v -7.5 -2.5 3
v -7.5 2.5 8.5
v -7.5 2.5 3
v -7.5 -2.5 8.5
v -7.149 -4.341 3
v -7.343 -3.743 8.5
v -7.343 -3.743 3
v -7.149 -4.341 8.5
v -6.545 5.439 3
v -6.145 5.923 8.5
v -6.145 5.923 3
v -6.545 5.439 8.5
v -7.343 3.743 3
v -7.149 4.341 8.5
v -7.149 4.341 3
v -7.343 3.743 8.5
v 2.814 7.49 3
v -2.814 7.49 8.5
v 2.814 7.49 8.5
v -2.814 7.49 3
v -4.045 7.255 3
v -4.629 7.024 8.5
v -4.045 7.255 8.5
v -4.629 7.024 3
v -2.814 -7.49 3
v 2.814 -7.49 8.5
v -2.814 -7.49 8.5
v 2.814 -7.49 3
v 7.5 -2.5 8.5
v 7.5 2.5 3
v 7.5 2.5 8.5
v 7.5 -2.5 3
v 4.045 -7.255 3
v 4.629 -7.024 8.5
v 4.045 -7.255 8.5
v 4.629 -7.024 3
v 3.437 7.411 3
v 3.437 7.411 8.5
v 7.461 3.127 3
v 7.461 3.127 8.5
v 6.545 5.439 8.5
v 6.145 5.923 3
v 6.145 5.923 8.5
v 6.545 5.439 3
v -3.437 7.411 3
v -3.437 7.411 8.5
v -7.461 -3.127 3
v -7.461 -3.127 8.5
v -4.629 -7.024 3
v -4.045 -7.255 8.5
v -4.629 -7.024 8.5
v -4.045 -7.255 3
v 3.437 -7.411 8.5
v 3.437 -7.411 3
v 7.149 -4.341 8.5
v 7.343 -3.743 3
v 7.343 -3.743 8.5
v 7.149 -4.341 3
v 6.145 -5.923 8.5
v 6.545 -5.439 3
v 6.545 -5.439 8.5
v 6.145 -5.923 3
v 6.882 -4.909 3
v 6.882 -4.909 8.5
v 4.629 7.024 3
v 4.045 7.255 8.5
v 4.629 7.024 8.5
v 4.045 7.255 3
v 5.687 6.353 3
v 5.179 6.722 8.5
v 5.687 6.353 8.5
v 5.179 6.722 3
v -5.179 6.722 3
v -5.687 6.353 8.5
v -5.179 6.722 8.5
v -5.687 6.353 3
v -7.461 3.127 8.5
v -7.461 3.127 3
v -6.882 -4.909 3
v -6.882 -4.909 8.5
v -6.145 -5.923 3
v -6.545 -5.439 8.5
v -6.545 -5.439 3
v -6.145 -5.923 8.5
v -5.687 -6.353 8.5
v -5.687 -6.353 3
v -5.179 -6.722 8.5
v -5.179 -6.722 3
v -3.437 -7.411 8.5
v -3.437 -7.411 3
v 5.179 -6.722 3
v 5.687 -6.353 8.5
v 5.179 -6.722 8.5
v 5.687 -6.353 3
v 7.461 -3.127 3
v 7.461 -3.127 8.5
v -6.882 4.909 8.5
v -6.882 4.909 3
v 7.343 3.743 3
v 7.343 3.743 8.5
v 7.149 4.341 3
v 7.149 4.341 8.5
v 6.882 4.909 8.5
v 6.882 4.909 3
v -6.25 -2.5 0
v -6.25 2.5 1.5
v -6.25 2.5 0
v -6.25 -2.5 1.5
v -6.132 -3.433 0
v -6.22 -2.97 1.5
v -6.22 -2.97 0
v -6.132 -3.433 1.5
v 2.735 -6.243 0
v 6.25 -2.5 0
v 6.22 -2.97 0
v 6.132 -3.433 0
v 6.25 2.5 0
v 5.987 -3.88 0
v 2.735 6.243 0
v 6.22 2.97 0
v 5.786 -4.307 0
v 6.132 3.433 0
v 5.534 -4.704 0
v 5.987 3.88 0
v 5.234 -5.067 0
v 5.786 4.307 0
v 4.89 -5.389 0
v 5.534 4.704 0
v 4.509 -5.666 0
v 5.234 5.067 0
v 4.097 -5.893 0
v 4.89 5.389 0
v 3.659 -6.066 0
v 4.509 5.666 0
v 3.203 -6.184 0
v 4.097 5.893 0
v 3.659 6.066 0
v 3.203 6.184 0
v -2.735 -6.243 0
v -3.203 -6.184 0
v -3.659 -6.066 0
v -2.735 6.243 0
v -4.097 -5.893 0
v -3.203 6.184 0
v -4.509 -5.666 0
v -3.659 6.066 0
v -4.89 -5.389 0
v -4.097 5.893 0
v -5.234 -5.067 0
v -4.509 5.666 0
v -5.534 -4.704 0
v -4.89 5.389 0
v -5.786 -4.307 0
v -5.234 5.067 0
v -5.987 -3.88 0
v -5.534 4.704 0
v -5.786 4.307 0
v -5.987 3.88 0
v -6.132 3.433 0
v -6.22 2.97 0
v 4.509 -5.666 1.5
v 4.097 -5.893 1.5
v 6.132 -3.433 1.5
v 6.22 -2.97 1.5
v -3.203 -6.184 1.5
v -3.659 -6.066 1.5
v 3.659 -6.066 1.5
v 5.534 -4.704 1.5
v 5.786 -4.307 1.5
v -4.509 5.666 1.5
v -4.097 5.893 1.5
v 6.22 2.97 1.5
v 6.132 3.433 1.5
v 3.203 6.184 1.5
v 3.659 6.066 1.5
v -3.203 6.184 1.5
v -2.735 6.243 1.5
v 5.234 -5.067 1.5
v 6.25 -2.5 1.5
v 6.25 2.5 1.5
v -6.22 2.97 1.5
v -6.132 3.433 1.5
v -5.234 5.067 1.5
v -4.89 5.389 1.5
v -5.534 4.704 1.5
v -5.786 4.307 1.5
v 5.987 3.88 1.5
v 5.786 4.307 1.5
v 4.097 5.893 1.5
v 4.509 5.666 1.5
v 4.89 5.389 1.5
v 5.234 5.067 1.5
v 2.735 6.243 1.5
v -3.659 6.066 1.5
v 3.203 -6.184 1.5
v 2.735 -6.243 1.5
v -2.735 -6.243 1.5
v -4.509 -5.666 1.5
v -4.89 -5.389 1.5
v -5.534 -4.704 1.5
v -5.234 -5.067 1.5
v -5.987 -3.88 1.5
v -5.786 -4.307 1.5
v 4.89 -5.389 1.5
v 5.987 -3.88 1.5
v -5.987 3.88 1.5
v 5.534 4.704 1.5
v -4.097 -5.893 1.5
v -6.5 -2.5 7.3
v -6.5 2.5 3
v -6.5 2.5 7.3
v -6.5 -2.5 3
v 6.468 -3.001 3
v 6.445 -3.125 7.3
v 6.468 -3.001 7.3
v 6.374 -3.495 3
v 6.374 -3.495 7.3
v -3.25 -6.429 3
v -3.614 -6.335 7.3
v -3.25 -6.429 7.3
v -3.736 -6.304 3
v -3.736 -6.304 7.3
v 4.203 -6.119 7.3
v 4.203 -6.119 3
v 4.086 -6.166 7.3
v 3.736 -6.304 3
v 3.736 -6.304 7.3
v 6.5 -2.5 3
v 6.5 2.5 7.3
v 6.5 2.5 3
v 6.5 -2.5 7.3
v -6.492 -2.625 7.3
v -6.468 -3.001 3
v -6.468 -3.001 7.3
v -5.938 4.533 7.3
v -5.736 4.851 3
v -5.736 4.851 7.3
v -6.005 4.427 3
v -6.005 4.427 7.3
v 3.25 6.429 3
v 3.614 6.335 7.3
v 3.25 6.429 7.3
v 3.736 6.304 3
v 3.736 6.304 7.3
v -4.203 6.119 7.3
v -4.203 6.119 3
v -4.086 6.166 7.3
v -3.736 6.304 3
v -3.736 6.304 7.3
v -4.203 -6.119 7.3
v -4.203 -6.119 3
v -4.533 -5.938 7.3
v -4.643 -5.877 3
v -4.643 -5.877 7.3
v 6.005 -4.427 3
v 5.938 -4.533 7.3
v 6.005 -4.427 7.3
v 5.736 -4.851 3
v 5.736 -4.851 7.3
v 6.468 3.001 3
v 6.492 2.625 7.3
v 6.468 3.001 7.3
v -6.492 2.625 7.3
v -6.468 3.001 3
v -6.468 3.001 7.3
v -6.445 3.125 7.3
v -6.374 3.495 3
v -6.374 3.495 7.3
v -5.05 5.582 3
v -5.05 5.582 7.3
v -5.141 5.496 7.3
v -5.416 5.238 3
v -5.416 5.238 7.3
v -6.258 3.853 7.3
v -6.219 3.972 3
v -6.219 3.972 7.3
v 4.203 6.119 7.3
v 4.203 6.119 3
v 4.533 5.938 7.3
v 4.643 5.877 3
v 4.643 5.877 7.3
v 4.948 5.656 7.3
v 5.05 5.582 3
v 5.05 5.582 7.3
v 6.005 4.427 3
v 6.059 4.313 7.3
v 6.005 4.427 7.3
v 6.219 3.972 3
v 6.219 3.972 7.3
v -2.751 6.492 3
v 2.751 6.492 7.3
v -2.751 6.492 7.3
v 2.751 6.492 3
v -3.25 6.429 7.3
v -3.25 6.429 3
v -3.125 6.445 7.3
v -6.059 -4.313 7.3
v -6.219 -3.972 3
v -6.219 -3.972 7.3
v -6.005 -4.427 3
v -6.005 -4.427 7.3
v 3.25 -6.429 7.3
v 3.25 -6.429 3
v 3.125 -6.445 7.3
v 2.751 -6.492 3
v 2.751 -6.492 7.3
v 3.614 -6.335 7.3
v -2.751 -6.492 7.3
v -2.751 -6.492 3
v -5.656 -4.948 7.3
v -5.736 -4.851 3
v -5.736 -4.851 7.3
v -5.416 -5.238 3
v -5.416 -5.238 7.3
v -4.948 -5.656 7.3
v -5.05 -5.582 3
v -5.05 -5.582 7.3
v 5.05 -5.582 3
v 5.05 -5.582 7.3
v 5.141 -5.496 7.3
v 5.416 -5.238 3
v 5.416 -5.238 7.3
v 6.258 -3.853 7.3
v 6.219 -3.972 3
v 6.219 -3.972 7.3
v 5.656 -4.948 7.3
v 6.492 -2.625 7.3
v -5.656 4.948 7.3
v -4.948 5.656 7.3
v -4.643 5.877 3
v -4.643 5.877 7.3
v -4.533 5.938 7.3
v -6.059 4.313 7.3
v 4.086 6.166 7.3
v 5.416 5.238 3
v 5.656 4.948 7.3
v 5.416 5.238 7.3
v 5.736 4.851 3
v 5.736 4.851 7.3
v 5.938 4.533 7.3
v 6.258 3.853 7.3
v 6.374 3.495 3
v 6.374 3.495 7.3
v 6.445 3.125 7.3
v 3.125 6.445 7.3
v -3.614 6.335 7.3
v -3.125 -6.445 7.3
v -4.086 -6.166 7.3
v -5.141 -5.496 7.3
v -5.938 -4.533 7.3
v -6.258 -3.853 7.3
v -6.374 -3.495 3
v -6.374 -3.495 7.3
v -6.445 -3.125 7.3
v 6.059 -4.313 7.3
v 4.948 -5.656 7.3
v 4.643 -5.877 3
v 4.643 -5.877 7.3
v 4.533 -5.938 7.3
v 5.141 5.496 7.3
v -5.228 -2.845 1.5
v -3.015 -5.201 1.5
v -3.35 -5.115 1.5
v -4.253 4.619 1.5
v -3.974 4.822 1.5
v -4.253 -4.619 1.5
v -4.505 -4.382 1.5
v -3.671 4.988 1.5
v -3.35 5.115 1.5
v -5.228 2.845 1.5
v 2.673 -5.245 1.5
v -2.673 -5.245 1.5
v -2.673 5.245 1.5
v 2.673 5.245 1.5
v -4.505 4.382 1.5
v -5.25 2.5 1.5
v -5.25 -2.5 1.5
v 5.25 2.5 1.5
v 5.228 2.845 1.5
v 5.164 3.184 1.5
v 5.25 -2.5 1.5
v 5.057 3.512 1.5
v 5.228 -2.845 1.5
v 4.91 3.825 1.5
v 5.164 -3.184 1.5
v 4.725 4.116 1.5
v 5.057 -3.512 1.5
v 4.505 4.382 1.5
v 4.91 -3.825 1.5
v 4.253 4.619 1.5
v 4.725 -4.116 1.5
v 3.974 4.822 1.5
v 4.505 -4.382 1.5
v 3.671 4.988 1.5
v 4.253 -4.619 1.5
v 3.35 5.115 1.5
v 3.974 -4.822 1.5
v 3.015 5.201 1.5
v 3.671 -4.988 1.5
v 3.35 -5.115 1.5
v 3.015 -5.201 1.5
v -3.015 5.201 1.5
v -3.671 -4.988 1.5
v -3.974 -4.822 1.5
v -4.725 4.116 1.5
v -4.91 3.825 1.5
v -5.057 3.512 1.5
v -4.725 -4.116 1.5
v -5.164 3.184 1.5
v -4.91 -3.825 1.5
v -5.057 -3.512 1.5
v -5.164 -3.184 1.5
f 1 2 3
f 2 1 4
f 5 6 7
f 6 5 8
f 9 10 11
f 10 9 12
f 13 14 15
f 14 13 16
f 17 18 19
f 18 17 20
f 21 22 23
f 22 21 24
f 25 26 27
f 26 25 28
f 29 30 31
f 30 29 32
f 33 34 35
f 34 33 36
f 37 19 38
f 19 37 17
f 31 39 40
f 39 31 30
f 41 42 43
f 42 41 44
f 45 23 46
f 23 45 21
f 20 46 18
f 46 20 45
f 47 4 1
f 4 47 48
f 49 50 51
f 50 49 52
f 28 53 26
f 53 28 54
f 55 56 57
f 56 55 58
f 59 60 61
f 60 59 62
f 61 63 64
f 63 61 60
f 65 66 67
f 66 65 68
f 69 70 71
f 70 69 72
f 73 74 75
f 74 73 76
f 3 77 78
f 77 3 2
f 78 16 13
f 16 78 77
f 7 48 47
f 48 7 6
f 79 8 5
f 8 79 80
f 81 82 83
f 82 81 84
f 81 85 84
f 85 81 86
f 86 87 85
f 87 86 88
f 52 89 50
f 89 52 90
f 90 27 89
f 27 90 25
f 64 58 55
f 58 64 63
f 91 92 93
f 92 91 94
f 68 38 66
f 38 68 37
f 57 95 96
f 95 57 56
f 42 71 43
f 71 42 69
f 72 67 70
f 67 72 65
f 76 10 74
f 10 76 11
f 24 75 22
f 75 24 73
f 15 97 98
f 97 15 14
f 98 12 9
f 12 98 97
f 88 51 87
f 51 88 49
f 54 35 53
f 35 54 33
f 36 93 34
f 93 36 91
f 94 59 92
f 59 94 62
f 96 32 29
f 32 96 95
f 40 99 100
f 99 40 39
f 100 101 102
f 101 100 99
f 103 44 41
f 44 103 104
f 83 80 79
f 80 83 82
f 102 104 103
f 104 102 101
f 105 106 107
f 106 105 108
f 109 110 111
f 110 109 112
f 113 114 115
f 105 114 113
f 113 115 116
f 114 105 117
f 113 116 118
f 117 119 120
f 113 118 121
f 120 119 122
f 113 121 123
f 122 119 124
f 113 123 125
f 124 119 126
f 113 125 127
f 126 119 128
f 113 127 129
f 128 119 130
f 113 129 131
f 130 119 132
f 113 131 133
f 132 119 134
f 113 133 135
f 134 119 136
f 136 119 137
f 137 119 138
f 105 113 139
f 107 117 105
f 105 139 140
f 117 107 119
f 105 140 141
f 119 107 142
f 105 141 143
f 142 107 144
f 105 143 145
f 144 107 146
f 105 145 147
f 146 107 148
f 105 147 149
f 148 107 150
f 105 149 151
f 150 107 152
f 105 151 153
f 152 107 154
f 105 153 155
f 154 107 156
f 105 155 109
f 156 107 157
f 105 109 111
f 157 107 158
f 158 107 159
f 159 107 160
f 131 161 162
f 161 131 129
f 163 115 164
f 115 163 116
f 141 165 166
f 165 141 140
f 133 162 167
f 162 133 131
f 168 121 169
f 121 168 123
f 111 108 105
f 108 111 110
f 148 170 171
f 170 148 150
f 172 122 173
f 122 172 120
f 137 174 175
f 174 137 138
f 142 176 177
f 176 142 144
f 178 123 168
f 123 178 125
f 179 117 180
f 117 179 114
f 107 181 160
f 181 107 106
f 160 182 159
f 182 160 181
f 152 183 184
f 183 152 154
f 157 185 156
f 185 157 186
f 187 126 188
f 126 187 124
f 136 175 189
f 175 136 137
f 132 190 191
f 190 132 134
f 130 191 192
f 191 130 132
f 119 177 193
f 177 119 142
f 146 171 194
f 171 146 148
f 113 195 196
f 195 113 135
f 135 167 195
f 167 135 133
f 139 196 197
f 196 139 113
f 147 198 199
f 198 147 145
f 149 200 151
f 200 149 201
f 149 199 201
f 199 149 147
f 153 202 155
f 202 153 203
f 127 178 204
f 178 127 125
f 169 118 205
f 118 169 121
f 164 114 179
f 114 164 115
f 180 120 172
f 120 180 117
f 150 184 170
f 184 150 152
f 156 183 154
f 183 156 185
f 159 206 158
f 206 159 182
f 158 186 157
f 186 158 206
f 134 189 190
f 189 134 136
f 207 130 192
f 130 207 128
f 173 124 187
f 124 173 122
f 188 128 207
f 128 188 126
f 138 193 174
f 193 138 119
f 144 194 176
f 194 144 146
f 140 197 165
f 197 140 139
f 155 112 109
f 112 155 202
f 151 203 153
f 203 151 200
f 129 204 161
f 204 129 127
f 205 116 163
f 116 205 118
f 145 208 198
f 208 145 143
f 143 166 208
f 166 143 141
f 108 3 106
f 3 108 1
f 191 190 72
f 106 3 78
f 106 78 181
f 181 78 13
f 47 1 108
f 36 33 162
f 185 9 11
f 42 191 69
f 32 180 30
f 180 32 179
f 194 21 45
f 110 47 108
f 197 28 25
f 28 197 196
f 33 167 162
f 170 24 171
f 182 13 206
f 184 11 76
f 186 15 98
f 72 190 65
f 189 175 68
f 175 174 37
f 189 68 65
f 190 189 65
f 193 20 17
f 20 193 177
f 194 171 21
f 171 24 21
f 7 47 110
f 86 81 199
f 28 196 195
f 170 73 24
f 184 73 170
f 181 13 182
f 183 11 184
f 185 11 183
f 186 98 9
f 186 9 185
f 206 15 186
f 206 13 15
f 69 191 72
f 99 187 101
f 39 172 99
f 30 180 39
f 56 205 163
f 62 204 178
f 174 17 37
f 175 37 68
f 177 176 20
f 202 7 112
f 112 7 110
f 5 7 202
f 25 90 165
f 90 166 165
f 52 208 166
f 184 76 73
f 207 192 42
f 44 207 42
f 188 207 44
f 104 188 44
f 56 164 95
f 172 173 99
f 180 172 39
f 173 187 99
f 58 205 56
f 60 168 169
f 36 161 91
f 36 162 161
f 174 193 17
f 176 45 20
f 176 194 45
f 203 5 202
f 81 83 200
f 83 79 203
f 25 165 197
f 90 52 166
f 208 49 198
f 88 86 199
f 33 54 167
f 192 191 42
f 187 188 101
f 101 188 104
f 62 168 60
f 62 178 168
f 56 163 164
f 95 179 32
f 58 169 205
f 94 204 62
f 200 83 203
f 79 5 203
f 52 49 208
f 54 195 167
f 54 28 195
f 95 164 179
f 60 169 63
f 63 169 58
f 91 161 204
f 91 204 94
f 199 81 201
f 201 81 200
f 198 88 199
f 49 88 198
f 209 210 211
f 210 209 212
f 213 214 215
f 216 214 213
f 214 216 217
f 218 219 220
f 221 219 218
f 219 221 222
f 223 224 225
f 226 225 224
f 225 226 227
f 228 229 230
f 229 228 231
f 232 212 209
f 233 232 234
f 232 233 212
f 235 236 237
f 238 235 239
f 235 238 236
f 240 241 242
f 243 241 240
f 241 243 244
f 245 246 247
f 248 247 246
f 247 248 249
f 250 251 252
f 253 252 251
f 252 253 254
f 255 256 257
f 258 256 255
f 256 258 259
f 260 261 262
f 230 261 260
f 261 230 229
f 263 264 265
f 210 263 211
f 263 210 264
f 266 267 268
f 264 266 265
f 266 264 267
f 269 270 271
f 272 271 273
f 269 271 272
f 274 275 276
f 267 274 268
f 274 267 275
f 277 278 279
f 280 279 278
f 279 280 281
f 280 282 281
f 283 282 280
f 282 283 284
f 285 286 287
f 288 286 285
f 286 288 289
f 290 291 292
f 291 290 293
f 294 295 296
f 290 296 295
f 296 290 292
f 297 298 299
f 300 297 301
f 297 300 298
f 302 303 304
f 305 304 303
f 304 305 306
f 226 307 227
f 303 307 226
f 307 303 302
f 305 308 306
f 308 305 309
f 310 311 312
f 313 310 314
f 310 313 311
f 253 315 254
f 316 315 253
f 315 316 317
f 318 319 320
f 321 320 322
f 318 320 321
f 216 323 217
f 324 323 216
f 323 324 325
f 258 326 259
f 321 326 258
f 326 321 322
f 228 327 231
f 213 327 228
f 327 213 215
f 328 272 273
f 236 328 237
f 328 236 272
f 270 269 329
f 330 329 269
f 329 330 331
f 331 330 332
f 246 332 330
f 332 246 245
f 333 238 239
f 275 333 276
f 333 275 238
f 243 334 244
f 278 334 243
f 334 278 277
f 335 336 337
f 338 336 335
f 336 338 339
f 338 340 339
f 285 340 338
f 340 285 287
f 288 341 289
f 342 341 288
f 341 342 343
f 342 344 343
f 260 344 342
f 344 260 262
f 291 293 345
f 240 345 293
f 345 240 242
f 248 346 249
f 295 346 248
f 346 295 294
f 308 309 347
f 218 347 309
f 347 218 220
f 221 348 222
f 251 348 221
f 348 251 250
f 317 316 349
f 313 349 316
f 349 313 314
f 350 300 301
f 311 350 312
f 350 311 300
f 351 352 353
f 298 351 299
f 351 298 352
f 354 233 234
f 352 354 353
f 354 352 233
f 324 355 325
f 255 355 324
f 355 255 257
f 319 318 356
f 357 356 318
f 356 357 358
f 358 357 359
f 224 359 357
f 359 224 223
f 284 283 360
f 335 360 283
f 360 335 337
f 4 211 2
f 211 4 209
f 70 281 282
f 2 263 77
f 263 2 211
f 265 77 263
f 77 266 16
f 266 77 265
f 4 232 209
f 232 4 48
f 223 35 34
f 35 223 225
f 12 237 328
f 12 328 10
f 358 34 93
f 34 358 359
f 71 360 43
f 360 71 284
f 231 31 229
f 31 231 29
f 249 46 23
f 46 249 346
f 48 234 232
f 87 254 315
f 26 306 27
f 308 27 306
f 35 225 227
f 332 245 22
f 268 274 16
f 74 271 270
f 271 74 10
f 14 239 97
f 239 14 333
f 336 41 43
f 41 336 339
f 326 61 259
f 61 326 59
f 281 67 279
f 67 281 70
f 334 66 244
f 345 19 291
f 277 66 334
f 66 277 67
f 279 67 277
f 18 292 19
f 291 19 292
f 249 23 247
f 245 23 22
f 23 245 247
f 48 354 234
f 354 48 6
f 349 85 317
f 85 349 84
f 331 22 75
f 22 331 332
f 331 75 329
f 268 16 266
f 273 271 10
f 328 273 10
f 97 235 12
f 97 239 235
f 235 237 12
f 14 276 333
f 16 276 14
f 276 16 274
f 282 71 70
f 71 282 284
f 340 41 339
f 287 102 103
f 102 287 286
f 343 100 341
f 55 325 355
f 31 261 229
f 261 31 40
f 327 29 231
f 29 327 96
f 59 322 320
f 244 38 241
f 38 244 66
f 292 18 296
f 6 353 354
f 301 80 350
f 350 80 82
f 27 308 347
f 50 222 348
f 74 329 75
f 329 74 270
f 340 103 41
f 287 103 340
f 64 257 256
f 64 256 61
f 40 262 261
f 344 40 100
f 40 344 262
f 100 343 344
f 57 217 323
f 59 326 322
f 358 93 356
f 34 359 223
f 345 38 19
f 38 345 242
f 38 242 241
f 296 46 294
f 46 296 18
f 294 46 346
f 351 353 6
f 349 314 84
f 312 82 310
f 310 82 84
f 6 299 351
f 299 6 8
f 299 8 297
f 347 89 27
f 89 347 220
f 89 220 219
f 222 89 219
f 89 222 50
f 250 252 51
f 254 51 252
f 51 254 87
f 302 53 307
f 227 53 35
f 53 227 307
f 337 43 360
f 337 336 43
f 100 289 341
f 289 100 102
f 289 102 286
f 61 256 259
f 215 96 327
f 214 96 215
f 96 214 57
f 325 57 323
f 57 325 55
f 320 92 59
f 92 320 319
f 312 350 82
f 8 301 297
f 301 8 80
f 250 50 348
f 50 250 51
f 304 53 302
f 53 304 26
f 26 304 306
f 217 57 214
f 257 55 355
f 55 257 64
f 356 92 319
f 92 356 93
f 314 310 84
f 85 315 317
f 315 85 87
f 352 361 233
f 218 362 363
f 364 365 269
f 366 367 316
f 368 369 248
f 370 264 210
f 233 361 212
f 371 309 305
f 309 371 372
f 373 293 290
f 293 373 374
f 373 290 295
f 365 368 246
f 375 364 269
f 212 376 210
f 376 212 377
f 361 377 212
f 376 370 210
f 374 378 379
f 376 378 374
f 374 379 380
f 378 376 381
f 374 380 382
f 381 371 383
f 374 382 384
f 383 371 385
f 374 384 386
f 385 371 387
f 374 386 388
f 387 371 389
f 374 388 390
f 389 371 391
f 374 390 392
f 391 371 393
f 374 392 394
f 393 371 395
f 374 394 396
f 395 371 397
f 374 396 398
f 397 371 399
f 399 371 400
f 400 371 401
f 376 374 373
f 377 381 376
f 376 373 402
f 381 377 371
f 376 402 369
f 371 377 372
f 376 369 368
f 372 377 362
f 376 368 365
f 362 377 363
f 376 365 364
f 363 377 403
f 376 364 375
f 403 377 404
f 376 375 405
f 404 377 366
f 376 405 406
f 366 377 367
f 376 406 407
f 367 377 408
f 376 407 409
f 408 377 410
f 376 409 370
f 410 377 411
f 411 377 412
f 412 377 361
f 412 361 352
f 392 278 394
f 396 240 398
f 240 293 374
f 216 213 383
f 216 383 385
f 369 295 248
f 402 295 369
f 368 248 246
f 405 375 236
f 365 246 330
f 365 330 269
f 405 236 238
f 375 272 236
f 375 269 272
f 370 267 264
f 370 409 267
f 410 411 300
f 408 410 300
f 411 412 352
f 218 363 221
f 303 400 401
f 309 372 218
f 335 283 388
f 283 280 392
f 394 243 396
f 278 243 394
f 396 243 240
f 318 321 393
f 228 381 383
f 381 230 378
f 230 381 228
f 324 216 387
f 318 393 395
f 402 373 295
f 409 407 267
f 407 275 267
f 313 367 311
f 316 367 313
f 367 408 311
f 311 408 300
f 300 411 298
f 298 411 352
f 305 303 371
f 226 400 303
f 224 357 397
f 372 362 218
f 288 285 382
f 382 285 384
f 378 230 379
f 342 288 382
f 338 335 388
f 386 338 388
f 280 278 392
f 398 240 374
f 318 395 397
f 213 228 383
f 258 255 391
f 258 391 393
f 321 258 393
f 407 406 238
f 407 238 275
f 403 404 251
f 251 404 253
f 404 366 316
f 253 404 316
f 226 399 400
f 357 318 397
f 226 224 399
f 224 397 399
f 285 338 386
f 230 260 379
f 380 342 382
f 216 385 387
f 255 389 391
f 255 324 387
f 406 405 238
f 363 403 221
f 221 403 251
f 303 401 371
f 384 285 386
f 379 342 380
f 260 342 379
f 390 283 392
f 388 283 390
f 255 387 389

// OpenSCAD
$fn = 50;


difference() {
	union() {
		translate(v = [0, 0, 3.0000000000]) {
			hull() {
				translate(v = [-2.5000000000, 2.5000000000, 0]) {
					cylinder(h = 5.5000000000, r = 5);
				}
				translate(v = [2.5000000000, 2.5000000000, 0]) {
					cylinder(h = 5.5000000000, r = 5);
				}
				translate(v = [-2.5000000000, -2.5000000000, 0]) {
					cylinder(h = 5.5000000000, r = 5);
				}
				translate(v = [2.5000000000, -2.5000000000, 0]) {
					cylinder(h = 5.5000000000, r = 5);
				}
			}
		}
		hull() {
			translate(v = [-2.5000000000, 2.5000000000, 0]) {
				cylinder(h = 1.5000000000, r = 3.7500000000);
			}
			translate(v = [2.5000000000, 2.5000000000, 0]) {
				cylinder(h = 1.5000000000, r = 3.7500000000);
			}
			translate(v = [-2.5000000000, -2.5000000000, 0]) {
				cylinder(h = 1.5000000000, r = 3.7500000000);
			}
			translate(v = [2.5000000000, -2.5000000000, 0]) {
				cylinder(h = 1.5000000000, r = 3.7500000000);
			}
		}
		translate(v = [0, 0, 1.5000000000]) {
			hull() {
				translate(v = [-2.5000000000, 2.5000000000, 0]) {
					cylinder(h = 1.5000000000, r1 = 3.7500000000, r2 = 5.0000000000);
				}
				translate(v = [2.5000000000, 2.5000000000, 0]) {
					cylinder(h = 1.5000000000, r1 = 3.7500000000, r2 = 5.0000000000);
				}
				translate(v = [-2.5000000000, -2.5000000000, 0]) {
					cylinder(h = 1.5000000000, r1 = 3.7500000000, r2 = 5.0000000000);
				}
				translate(v = [2.5000000000, -2.5000000000, 0]) {
					cylinder(h = 1.5000000000, r1 = 3.7500000000, r2 = 5.0000000000);
				}
			}
		}
	}
	union() {
		translate(v = [0, 0, 3.0000000000]) {
			#hull() {
				translate(v = [-2.5000000000, 2.5000000000, 0]) {
					cylinder(h = 5.5000000000, r = 4);
				}
				translate(v = [2.5000000000, 2.5000000000, 0]) {
					cylinder(h = 5.5000000000, r = 4);
				}
				translate(v = [-2.5000000000, -2.5000000000, 0]) {
					cylinder(h = 5.5000000000, r = 4);
				}
				translate(v = [2.5000000000, -2.5000000000, 0]) {
					cylinder(h = 5.5000000000, r = 4);
				}
			}
		}
		translate(v = [0, 0, 7]) {
			hull() {
				translate(v = [-2.5000000000, 2.5000000000, 0]) {
					cylinder(h = 1.5000000000, r1 = 3.7500000000, r2 = 5.0000000000);
				}
				translate(v = [2.5000000000, 2.5000000000, 0]) {
					cylinder(h = 1.5000000000, r1 = 3.7500000000, r2 = 5.0000000000);
				}
				translate(v = [-2.5000000000, -2.5000000000, 0]) {
					cylinder(h = 1.5000000000, r1 = 3.7500000000, r2 = 5.0000000000);
				}
				translate(v = [2.5000000000, -2.5000000000, 0]) {
					cylinder(h = 1.5000000000, r1 = 3.7500000000, r2 = 5.0000000000);
				}
			}
		}
		translate(v = [0, 0, 1.5000000000]) {
			#hull() {
				translate(v = [-2.5000000000, 2.5000000000, 0]) {
					cylinder(h = 1.5000000000, r1 = 2.7500000000, r2 = 4.0000000000);
				}
				translate(v = [2.5000000000, 2.5000000000, 0]) {
					cylinder(h = 1.5000000000, r1 = 2.7500000000, r2 = 4.0000000000);
				}
				translate(v = [-2.5000000000, -2.5000000000, 0]) {
					cylinder(h = 1.5000000000, r1 = 2.7500000000, r2 = 4.0000000000);
				}
				translate(v = [2.5000000000, -2.5000000000, 0]) {
					cylinder(h = 1.5000000000, r1 = 2.7500000000, r2 = 4.0000000000);
				}
			}
		}
	}
}
